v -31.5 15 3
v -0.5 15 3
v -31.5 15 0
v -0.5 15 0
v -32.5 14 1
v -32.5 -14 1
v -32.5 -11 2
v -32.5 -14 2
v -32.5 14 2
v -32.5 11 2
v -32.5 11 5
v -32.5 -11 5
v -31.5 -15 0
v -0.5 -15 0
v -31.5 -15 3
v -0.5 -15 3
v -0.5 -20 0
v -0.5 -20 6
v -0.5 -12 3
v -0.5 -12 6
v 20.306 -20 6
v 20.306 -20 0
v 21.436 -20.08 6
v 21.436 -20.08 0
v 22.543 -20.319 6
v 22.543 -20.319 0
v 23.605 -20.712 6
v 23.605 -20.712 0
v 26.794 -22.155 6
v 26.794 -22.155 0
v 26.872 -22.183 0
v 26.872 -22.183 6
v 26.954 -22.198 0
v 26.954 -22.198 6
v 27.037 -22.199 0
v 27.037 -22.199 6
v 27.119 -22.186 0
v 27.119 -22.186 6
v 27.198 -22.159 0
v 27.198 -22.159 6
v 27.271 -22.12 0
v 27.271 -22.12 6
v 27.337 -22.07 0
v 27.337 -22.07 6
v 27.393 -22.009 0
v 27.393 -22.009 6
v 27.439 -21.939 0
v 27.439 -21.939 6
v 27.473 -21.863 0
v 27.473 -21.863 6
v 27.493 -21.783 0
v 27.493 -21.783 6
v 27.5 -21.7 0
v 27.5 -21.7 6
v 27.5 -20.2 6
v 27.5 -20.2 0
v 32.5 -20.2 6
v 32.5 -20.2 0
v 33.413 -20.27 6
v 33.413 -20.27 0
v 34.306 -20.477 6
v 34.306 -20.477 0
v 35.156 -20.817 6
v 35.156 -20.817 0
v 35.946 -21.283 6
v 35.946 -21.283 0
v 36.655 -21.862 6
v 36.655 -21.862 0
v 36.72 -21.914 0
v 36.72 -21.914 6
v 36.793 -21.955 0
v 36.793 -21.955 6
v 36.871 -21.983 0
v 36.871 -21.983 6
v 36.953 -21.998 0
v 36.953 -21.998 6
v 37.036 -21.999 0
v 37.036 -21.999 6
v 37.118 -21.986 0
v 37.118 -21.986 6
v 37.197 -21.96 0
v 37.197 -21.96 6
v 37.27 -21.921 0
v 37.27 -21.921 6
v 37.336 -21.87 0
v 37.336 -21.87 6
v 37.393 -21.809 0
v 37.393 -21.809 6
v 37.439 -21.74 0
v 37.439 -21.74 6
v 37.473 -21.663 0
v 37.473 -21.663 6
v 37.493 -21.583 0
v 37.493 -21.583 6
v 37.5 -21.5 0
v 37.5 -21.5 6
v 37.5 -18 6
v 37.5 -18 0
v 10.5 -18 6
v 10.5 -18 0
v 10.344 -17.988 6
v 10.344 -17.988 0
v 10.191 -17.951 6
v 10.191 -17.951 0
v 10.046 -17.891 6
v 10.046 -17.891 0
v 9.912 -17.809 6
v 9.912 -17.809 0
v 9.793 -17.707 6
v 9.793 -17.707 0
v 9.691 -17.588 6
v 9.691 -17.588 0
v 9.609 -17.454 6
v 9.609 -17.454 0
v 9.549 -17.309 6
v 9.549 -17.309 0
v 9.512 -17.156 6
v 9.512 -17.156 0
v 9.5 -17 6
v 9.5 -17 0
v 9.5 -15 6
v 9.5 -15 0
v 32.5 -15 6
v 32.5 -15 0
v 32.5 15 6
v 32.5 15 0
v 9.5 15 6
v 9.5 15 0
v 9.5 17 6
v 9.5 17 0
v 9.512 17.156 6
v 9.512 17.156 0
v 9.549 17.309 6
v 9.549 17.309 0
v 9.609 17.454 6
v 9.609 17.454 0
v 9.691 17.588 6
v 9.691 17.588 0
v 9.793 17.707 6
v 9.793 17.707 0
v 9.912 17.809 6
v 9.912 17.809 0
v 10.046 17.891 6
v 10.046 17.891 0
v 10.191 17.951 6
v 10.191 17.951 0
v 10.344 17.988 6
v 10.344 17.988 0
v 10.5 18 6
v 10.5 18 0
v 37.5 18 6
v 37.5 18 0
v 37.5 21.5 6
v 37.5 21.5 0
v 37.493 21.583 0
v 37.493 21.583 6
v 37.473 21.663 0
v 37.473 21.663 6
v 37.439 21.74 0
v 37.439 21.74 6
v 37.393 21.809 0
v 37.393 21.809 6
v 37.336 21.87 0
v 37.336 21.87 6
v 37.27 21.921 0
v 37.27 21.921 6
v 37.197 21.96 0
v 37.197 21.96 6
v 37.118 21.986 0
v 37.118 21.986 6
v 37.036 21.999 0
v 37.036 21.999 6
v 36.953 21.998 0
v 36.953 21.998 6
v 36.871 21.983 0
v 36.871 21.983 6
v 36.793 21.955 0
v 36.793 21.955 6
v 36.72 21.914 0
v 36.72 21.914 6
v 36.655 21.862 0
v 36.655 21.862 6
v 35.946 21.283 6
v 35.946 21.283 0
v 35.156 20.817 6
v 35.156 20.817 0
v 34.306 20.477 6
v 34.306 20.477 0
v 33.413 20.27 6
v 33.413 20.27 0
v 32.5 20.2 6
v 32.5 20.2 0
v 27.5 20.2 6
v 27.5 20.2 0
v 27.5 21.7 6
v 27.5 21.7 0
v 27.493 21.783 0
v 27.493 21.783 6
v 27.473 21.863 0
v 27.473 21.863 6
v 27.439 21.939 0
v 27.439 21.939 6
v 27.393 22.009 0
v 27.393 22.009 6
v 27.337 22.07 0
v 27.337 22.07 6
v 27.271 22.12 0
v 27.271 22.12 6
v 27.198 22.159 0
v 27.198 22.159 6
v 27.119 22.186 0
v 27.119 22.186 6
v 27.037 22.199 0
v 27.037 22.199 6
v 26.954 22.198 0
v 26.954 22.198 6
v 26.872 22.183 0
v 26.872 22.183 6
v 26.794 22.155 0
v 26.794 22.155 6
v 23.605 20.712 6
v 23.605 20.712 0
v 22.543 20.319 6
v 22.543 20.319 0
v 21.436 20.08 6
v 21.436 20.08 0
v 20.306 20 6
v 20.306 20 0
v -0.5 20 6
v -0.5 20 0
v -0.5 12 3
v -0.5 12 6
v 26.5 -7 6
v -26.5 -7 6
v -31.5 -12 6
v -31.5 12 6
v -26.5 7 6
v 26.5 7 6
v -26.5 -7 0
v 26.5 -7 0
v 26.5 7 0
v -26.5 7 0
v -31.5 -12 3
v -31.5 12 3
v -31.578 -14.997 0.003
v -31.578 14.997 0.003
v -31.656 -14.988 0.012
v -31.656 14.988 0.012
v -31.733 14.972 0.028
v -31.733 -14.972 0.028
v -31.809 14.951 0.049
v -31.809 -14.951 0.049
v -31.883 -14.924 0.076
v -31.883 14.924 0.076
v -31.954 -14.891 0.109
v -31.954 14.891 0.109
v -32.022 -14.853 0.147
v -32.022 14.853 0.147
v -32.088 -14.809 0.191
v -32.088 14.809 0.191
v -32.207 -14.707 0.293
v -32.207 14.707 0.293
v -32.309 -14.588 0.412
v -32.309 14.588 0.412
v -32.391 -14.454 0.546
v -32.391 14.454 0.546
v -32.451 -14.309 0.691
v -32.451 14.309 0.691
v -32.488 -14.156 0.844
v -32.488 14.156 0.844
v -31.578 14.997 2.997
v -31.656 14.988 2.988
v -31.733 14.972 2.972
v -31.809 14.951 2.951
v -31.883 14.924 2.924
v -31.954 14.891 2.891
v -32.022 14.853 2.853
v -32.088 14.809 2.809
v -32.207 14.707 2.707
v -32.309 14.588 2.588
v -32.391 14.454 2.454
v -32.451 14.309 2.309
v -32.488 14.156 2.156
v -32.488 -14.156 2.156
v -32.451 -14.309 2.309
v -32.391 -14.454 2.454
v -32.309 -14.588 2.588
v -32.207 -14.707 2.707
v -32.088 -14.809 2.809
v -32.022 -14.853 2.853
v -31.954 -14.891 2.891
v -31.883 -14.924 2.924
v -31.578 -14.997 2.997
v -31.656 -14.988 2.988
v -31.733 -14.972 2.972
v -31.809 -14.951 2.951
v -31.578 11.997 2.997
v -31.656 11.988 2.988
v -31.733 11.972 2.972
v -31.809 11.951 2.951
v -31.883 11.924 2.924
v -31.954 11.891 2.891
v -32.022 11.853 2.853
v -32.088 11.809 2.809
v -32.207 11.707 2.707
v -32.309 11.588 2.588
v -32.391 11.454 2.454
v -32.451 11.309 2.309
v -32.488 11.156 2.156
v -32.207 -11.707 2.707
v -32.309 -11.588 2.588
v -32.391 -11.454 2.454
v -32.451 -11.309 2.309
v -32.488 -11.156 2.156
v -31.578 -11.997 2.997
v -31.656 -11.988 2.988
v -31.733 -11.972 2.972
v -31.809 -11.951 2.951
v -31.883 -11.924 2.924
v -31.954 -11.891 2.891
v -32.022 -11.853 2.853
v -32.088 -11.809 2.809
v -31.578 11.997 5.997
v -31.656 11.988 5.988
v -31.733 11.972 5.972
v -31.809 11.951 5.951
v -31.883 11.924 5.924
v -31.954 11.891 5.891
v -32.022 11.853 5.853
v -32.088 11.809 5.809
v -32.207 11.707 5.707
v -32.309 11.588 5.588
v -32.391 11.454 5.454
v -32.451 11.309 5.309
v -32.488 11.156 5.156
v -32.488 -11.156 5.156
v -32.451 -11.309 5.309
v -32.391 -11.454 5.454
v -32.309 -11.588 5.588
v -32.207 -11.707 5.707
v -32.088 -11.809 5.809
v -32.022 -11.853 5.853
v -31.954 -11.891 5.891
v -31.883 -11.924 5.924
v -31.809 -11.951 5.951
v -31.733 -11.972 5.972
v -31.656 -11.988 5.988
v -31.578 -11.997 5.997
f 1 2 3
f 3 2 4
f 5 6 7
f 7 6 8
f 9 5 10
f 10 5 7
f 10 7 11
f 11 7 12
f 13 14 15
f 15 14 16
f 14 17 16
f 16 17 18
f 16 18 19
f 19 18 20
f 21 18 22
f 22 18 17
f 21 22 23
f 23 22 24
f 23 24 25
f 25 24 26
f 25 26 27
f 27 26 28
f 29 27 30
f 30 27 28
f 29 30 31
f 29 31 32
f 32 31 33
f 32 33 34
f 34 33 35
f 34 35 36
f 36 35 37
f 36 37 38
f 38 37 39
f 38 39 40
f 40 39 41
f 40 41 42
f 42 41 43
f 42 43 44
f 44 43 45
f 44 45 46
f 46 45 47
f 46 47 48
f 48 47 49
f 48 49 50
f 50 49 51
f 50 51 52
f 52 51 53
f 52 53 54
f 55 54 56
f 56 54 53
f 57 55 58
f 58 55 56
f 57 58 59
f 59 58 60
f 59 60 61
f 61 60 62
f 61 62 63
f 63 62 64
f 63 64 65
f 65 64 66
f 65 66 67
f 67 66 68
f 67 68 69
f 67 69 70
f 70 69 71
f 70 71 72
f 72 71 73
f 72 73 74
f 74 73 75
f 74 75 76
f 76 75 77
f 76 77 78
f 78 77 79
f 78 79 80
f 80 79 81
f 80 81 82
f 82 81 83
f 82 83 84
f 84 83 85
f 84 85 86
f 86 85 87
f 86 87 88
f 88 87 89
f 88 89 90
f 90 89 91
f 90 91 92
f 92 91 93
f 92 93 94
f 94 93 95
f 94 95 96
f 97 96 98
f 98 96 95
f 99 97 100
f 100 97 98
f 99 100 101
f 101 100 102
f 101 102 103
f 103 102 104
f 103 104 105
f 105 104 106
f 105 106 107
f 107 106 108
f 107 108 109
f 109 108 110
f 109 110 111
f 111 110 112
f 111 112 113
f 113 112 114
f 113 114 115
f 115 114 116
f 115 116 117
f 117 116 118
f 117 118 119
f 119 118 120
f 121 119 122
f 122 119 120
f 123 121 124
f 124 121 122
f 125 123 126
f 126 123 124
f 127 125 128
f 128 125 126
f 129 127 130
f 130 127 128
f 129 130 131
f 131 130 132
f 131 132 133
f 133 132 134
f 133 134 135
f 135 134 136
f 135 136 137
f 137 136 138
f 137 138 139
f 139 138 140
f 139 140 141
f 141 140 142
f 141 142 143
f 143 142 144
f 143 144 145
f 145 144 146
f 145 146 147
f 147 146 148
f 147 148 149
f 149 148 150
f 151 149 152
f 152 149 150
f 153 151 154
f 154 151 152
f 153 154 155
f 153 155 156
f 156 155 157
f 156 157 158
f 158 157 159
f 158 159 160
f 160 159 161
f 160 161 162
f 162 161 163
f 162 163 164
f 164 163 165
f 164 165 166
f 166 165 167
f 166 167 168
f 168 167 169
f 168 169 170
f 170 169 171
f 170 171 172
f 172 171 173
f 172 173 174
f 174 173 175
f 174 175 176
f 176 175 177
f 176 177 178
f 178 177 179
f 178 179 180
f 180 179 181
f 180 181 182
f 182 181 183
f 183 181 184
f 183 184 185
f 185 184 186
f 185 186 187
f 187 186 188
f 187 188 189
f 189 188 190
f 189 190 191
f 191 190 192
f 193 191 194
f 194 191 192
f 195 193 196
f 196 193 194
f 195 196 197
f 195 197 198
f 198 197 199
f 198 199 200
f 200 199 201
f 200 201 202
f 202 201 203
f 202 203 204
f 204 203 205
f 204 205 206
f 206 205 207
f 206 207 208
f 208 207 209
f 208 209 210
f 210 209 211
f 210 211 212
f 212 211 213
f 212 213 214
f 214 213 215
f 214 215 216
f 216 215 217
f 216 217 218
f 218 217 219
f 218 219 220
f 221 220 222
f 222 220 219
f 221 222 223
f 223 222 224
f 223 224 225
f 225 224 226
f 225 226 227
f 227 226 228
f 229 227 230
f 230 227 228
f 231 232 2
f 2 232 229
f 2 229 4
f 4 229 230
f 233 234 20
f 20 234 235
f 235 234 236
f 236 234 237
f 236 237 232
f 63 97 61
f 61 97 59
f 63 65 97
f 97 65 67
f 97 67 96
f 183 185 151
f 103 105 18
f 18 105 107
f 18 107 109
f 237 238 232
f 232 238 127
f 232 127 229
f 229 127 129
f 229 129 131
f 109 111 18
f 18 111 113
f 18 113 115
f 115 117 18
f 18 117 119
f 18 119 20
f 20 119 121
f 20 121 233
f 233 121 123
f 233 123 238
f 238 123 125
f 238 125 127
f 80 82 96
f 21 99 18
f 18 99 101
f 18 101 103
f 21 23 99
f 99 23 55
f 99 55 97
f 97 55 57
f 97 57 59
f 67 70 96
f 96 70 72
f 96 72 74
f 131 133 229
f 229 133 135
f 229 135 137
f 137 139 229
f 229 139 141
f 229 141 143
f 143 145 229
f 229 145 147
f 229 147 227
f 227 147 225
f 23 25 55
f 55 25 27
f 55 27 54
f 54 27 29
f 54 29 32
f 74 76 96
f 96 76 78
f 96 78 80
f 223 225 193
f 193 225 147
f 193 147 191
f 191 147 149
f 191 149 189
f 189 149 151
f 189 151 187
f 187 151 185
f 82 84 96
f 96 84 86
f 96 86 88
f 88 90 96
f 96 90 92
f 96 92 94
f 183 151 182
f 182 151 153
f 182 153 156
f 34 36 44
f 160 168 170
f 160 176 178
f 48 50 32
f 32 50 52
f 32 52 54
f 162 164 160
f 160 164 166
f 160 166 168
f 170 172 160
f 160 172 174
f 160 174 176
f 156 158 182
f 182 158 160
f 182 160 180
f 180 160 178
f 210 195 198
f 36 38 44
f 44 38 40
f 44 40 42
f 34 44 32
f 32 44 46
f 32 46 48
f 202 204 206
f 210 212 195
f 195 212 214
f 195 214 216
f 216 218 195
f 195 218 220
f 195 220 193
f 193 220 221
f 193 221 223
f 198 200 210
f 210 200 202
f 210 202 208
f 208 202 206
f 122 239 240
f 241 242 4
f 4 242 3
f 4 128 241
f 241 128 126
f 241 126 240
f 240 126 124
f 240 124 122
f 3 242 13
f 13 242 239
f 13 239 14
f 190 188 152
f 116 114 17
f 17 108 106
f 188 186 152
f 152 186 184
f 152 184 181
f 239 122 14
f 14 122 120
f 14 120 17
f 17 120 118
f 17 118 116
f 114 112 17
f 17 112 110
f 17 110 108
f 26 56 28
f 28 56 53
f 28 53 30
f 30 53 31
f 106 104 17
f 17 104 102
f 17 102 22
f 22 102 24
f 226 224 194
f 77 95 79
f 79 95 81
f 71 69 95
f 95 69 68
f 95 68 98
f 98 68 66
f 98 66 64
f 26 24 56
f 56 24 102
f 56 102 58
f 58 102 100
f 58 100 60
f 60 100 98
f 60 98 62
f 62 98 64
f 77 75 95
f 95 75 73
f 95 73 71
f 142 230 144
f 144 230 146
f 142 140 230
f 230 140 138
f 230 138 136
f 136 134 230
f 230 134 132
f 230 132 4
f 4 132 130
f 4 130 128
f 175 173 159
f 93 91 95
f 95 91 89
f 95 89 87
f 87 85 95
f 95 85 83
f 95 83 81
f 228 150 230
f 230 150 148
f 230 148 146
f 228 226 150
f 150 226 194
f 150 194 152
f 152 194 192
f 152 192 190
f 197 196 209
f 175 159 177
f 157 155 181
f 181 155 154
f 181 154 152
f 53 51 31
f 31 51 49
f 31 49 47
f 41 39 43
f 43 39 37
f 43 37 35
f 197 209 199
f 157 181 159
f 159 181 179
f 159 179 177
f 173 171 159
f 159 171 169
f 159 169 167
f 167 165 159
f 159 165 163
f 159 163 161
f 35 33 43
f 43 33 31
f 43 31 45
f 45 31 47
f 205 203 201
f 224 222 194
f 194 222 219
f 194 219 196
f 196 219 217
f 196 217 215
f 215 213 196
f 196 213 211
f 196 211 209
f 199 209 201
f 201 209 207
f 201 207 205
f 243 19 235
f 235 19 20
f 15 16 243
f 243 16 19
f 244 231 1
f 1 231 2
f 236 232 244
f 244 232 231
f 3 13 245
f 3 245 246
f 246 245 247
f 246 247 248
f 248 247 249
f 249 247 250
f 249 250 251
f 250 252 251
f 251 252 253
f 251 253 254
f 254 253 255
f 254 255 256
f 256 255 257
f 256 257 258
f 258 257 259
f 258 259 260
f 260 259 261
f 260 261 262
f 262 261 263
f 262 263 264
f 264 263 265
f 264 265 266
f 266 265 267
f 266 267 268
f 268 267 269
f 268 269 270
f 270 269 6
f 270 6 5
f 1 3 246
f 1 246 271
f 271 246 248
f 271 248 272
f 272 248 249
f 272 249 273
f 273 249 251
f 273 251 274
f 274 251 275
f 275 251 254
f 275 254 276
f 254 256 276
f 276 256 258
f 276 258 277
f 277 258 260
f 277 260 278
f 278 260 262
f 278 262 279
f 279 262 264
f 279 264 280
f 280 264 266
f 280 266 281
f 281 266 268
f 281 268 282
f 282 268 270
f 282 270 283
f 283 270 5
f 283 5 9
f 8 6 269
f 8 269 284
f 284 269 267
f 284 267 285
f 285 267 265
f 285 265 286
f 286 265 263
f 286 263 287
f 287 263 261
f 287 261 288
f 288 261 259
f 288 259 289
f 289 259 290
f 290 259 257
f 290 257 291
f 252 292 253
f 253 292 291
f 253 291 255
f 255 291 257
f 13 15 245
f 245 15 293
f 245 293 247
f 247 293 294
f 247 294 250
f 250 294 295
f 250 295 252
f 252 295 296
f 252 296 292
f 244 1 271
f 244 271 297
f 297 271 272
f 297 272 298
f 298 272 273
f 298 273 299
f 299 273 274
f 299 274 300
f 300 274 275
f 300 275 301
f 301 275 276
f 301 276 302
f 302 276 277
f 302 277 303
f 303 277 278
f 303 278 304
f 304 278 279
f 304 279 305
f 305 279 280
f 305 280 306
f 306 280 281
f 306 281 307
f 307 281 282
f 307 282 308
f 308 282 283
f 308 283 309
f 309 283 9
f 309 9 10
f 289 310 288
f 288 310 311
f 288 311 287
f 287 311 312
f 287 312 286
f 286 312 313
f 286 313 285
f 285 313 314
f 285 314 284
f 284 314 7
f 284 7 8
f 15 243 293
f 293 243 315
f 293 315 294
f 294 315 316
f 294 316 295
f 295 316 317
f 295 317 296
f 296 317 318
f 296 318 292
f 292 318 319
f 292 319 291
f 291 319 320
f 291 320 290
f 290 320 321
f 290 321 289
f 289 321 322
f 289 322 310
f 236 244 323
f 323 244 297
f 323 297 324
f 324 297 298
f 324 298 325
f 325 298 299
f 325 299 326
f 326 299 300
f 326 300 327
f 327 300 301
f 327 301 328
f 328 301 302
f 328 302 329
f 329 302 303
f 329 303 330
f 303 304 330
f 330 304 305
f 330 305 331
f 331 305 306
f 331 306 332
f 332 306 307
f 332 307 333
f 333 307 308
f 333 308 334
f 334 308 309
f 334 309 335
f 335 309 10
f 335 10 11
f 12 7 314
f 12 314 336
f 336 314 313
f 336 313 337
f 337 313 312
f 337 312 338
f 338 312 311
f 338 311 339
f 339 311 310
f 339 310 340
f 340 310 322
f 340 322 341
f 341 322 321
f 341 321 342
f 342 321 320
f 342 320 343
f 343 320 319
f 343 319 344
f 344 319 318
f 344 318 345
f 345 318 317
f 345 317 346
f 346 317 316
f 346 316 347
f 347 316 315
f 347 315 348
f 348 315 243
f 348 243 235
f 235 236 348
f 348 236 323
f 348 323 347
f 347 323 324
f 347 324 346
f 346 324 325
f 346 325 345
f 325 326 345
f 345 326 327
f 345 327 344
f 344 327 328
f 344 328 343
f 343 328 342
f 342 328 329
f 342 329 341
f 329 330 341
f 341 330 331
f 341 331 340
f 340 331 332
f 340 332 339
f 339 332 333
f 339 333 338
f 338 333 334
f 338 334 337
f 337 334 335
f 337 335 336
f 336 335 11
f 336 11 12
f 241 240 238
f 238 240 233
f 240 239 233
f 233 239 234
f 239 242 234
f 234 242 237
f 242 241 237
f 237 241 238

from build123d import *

# Parameters (mm, degrees)
BOSS_EXTRUDE1_DEPTH = 6
SKETCH4_W           = 3
SKETCH4_H           = 3
CUT_EXTRUDE2_DEPTH  = 32
FILLET1_R           = 1
SKETCH6_W           = 53
SKETCH6_H           = 14
CUT_EXTRUDE4_DEPTH  = 44.989657875


with BuildPart() as part:
    # Sketch1 → Boss-Extrude1 (new body)
    with BuildSketch(Plane(origin=(0, 0, 0), x_dir=(0, 1, 0), z_dir=(0, 0, 1))):
        with BuildLine():
            Line((-15, -9.5), (-17, -9.5))
            ThreePointArc((-17, -9.5), (-17.707106781, -9.792893219), (-18, -10.5))
            Line((-18, -10.5), (-18, -27.5))
            Line((-18, -27.5), (-18, -37.5))
            Line((-18, -37.5), (-21.5, -37.5))
            ThreePointArc((-21.5, -37.5), (-21.959572515, -37.196959649), (-21.862068966, -36.655172414))
            ThreePointArc((-21.862068966, -36.655172414), (-20.630927937, -34.737628825), (-20.2, -32.5))
            Line((-20.2, -32.5), (-20.2, -27.5))
            Line((-20.2, -27.5), (-21.7, -27.5))
            ThreePointArc((-21.7, -27.5), (-22.120181053, -27.271012699), (-22.155497604, -26.793791532))
            Line((-22.155497604, -26.793791532), (-20.712038328, -23.6053083))
            ThreePointArc((-20.712038328, -23.6053083), (-20.180035378, -21.993620083), (-20, -20.305972812))
            Line((-20, -20.305972812), (-20, -9.5))
            Line((-20, -9.5), (-20, 0.5))
            Line((-20, 0.5), (-15, 0.5))
            Line((-15, 0.5), (-15, 32.5))
            Line((-15, 32.5), (15, 32.5))
            Line((15, 32.5), (15, 0.5))
            Line((15, 0.5), (20, 0.5))
            Line((20, 0.5), (20, -9.5))
            Line((20, -9.5), (20, -20.305972812))
            ThreePointArc((20, -20.305972812), (20.180035378, -21.993620083), (20.712038328, -23.6053083))
            Line((20.712038328, -23.6053083), (22.155497604, -26.793791532))
            ThreePointArc((22.155497604, -26.793791532), (22.120181053, -27.271012699), (21.7, -27.5))
            Line((21.7, -27.5), (20.2, -27.5))
            Line((20.2, -27.5), (20.2, -32.5))
            ThreePointArc((20.2, -32.5), (20.630927937, -34.737628825), (21.862068966, -36.655172414))
            ThreePointArc((21.862068966, -36.655172414), (21.959572515, -37.196959649), (21.5, -37.5))
            Line((21.5, -37.5), (18, -37.5))
            Line((18, -37.5), (18, -27.5))
            Line((18, -27.5), (18, -10.5))
            ThreePointArc((18, -10.5), (17.707106781, -9.792893219), (17, -9.5))
            Line((17, -9.5), (15, -9.5))
            Line((15, -9.5), (15, -32.5))
            Line((15, -32.5), (-15, -32.5))
            Line((-15, -32.5), (-15, -9.5))
        make_face()
    extrude(amount=BOSS_EXTRUDE1_DEPTH)

    # Sketch4 → Cut-Extrude2 (cut)
    with BuildSketch(Plane(origin=(-32.5, 0, 0), x_dir=(0, -1, 0), z_dir=(-1, 0, 0))):
        with Locations((-13.5, 4.5)):
            Rectangle(SKETCH4_W, SKETCH4_H)
        with Locations((13.5, 4.5)):
            Rectangle(SKETCH4_W, SKETCH4_H)
    extrude(amount=-CUT_EXTRUDE2_DEPTH, mode=Mode.SUBTRACT)

    # Fillet1
    fillet1_edges = [part.edges().sort_by_distance(p)[0] for p in [
        (-32.5, 0, 6),
        (-32.5, -15, 1.5),
        (-32.5, 15, 1.5),
        (-32.5, 13.5, 3),
        (-32.5, 12, 4.5),
        (-32.5, -12, 4.5),
        (-32.5, -13.5, 3),
        (-32.5, 0, 0),
    ]]
    fillet(fillet1_edges, radius=FILLET1_R)

    # Sketch6 → Cut-Extrude4 (cut, through all)
    with BuildSketch(Plane.XY.offset(6)):
        Rectangle(SKETCH6_W, SKETCH6_H)
    extrude(amount=-CUT_EXTRUDE4_DEPTH, mode=Mode.SUBTRACT)


solid = part.part
